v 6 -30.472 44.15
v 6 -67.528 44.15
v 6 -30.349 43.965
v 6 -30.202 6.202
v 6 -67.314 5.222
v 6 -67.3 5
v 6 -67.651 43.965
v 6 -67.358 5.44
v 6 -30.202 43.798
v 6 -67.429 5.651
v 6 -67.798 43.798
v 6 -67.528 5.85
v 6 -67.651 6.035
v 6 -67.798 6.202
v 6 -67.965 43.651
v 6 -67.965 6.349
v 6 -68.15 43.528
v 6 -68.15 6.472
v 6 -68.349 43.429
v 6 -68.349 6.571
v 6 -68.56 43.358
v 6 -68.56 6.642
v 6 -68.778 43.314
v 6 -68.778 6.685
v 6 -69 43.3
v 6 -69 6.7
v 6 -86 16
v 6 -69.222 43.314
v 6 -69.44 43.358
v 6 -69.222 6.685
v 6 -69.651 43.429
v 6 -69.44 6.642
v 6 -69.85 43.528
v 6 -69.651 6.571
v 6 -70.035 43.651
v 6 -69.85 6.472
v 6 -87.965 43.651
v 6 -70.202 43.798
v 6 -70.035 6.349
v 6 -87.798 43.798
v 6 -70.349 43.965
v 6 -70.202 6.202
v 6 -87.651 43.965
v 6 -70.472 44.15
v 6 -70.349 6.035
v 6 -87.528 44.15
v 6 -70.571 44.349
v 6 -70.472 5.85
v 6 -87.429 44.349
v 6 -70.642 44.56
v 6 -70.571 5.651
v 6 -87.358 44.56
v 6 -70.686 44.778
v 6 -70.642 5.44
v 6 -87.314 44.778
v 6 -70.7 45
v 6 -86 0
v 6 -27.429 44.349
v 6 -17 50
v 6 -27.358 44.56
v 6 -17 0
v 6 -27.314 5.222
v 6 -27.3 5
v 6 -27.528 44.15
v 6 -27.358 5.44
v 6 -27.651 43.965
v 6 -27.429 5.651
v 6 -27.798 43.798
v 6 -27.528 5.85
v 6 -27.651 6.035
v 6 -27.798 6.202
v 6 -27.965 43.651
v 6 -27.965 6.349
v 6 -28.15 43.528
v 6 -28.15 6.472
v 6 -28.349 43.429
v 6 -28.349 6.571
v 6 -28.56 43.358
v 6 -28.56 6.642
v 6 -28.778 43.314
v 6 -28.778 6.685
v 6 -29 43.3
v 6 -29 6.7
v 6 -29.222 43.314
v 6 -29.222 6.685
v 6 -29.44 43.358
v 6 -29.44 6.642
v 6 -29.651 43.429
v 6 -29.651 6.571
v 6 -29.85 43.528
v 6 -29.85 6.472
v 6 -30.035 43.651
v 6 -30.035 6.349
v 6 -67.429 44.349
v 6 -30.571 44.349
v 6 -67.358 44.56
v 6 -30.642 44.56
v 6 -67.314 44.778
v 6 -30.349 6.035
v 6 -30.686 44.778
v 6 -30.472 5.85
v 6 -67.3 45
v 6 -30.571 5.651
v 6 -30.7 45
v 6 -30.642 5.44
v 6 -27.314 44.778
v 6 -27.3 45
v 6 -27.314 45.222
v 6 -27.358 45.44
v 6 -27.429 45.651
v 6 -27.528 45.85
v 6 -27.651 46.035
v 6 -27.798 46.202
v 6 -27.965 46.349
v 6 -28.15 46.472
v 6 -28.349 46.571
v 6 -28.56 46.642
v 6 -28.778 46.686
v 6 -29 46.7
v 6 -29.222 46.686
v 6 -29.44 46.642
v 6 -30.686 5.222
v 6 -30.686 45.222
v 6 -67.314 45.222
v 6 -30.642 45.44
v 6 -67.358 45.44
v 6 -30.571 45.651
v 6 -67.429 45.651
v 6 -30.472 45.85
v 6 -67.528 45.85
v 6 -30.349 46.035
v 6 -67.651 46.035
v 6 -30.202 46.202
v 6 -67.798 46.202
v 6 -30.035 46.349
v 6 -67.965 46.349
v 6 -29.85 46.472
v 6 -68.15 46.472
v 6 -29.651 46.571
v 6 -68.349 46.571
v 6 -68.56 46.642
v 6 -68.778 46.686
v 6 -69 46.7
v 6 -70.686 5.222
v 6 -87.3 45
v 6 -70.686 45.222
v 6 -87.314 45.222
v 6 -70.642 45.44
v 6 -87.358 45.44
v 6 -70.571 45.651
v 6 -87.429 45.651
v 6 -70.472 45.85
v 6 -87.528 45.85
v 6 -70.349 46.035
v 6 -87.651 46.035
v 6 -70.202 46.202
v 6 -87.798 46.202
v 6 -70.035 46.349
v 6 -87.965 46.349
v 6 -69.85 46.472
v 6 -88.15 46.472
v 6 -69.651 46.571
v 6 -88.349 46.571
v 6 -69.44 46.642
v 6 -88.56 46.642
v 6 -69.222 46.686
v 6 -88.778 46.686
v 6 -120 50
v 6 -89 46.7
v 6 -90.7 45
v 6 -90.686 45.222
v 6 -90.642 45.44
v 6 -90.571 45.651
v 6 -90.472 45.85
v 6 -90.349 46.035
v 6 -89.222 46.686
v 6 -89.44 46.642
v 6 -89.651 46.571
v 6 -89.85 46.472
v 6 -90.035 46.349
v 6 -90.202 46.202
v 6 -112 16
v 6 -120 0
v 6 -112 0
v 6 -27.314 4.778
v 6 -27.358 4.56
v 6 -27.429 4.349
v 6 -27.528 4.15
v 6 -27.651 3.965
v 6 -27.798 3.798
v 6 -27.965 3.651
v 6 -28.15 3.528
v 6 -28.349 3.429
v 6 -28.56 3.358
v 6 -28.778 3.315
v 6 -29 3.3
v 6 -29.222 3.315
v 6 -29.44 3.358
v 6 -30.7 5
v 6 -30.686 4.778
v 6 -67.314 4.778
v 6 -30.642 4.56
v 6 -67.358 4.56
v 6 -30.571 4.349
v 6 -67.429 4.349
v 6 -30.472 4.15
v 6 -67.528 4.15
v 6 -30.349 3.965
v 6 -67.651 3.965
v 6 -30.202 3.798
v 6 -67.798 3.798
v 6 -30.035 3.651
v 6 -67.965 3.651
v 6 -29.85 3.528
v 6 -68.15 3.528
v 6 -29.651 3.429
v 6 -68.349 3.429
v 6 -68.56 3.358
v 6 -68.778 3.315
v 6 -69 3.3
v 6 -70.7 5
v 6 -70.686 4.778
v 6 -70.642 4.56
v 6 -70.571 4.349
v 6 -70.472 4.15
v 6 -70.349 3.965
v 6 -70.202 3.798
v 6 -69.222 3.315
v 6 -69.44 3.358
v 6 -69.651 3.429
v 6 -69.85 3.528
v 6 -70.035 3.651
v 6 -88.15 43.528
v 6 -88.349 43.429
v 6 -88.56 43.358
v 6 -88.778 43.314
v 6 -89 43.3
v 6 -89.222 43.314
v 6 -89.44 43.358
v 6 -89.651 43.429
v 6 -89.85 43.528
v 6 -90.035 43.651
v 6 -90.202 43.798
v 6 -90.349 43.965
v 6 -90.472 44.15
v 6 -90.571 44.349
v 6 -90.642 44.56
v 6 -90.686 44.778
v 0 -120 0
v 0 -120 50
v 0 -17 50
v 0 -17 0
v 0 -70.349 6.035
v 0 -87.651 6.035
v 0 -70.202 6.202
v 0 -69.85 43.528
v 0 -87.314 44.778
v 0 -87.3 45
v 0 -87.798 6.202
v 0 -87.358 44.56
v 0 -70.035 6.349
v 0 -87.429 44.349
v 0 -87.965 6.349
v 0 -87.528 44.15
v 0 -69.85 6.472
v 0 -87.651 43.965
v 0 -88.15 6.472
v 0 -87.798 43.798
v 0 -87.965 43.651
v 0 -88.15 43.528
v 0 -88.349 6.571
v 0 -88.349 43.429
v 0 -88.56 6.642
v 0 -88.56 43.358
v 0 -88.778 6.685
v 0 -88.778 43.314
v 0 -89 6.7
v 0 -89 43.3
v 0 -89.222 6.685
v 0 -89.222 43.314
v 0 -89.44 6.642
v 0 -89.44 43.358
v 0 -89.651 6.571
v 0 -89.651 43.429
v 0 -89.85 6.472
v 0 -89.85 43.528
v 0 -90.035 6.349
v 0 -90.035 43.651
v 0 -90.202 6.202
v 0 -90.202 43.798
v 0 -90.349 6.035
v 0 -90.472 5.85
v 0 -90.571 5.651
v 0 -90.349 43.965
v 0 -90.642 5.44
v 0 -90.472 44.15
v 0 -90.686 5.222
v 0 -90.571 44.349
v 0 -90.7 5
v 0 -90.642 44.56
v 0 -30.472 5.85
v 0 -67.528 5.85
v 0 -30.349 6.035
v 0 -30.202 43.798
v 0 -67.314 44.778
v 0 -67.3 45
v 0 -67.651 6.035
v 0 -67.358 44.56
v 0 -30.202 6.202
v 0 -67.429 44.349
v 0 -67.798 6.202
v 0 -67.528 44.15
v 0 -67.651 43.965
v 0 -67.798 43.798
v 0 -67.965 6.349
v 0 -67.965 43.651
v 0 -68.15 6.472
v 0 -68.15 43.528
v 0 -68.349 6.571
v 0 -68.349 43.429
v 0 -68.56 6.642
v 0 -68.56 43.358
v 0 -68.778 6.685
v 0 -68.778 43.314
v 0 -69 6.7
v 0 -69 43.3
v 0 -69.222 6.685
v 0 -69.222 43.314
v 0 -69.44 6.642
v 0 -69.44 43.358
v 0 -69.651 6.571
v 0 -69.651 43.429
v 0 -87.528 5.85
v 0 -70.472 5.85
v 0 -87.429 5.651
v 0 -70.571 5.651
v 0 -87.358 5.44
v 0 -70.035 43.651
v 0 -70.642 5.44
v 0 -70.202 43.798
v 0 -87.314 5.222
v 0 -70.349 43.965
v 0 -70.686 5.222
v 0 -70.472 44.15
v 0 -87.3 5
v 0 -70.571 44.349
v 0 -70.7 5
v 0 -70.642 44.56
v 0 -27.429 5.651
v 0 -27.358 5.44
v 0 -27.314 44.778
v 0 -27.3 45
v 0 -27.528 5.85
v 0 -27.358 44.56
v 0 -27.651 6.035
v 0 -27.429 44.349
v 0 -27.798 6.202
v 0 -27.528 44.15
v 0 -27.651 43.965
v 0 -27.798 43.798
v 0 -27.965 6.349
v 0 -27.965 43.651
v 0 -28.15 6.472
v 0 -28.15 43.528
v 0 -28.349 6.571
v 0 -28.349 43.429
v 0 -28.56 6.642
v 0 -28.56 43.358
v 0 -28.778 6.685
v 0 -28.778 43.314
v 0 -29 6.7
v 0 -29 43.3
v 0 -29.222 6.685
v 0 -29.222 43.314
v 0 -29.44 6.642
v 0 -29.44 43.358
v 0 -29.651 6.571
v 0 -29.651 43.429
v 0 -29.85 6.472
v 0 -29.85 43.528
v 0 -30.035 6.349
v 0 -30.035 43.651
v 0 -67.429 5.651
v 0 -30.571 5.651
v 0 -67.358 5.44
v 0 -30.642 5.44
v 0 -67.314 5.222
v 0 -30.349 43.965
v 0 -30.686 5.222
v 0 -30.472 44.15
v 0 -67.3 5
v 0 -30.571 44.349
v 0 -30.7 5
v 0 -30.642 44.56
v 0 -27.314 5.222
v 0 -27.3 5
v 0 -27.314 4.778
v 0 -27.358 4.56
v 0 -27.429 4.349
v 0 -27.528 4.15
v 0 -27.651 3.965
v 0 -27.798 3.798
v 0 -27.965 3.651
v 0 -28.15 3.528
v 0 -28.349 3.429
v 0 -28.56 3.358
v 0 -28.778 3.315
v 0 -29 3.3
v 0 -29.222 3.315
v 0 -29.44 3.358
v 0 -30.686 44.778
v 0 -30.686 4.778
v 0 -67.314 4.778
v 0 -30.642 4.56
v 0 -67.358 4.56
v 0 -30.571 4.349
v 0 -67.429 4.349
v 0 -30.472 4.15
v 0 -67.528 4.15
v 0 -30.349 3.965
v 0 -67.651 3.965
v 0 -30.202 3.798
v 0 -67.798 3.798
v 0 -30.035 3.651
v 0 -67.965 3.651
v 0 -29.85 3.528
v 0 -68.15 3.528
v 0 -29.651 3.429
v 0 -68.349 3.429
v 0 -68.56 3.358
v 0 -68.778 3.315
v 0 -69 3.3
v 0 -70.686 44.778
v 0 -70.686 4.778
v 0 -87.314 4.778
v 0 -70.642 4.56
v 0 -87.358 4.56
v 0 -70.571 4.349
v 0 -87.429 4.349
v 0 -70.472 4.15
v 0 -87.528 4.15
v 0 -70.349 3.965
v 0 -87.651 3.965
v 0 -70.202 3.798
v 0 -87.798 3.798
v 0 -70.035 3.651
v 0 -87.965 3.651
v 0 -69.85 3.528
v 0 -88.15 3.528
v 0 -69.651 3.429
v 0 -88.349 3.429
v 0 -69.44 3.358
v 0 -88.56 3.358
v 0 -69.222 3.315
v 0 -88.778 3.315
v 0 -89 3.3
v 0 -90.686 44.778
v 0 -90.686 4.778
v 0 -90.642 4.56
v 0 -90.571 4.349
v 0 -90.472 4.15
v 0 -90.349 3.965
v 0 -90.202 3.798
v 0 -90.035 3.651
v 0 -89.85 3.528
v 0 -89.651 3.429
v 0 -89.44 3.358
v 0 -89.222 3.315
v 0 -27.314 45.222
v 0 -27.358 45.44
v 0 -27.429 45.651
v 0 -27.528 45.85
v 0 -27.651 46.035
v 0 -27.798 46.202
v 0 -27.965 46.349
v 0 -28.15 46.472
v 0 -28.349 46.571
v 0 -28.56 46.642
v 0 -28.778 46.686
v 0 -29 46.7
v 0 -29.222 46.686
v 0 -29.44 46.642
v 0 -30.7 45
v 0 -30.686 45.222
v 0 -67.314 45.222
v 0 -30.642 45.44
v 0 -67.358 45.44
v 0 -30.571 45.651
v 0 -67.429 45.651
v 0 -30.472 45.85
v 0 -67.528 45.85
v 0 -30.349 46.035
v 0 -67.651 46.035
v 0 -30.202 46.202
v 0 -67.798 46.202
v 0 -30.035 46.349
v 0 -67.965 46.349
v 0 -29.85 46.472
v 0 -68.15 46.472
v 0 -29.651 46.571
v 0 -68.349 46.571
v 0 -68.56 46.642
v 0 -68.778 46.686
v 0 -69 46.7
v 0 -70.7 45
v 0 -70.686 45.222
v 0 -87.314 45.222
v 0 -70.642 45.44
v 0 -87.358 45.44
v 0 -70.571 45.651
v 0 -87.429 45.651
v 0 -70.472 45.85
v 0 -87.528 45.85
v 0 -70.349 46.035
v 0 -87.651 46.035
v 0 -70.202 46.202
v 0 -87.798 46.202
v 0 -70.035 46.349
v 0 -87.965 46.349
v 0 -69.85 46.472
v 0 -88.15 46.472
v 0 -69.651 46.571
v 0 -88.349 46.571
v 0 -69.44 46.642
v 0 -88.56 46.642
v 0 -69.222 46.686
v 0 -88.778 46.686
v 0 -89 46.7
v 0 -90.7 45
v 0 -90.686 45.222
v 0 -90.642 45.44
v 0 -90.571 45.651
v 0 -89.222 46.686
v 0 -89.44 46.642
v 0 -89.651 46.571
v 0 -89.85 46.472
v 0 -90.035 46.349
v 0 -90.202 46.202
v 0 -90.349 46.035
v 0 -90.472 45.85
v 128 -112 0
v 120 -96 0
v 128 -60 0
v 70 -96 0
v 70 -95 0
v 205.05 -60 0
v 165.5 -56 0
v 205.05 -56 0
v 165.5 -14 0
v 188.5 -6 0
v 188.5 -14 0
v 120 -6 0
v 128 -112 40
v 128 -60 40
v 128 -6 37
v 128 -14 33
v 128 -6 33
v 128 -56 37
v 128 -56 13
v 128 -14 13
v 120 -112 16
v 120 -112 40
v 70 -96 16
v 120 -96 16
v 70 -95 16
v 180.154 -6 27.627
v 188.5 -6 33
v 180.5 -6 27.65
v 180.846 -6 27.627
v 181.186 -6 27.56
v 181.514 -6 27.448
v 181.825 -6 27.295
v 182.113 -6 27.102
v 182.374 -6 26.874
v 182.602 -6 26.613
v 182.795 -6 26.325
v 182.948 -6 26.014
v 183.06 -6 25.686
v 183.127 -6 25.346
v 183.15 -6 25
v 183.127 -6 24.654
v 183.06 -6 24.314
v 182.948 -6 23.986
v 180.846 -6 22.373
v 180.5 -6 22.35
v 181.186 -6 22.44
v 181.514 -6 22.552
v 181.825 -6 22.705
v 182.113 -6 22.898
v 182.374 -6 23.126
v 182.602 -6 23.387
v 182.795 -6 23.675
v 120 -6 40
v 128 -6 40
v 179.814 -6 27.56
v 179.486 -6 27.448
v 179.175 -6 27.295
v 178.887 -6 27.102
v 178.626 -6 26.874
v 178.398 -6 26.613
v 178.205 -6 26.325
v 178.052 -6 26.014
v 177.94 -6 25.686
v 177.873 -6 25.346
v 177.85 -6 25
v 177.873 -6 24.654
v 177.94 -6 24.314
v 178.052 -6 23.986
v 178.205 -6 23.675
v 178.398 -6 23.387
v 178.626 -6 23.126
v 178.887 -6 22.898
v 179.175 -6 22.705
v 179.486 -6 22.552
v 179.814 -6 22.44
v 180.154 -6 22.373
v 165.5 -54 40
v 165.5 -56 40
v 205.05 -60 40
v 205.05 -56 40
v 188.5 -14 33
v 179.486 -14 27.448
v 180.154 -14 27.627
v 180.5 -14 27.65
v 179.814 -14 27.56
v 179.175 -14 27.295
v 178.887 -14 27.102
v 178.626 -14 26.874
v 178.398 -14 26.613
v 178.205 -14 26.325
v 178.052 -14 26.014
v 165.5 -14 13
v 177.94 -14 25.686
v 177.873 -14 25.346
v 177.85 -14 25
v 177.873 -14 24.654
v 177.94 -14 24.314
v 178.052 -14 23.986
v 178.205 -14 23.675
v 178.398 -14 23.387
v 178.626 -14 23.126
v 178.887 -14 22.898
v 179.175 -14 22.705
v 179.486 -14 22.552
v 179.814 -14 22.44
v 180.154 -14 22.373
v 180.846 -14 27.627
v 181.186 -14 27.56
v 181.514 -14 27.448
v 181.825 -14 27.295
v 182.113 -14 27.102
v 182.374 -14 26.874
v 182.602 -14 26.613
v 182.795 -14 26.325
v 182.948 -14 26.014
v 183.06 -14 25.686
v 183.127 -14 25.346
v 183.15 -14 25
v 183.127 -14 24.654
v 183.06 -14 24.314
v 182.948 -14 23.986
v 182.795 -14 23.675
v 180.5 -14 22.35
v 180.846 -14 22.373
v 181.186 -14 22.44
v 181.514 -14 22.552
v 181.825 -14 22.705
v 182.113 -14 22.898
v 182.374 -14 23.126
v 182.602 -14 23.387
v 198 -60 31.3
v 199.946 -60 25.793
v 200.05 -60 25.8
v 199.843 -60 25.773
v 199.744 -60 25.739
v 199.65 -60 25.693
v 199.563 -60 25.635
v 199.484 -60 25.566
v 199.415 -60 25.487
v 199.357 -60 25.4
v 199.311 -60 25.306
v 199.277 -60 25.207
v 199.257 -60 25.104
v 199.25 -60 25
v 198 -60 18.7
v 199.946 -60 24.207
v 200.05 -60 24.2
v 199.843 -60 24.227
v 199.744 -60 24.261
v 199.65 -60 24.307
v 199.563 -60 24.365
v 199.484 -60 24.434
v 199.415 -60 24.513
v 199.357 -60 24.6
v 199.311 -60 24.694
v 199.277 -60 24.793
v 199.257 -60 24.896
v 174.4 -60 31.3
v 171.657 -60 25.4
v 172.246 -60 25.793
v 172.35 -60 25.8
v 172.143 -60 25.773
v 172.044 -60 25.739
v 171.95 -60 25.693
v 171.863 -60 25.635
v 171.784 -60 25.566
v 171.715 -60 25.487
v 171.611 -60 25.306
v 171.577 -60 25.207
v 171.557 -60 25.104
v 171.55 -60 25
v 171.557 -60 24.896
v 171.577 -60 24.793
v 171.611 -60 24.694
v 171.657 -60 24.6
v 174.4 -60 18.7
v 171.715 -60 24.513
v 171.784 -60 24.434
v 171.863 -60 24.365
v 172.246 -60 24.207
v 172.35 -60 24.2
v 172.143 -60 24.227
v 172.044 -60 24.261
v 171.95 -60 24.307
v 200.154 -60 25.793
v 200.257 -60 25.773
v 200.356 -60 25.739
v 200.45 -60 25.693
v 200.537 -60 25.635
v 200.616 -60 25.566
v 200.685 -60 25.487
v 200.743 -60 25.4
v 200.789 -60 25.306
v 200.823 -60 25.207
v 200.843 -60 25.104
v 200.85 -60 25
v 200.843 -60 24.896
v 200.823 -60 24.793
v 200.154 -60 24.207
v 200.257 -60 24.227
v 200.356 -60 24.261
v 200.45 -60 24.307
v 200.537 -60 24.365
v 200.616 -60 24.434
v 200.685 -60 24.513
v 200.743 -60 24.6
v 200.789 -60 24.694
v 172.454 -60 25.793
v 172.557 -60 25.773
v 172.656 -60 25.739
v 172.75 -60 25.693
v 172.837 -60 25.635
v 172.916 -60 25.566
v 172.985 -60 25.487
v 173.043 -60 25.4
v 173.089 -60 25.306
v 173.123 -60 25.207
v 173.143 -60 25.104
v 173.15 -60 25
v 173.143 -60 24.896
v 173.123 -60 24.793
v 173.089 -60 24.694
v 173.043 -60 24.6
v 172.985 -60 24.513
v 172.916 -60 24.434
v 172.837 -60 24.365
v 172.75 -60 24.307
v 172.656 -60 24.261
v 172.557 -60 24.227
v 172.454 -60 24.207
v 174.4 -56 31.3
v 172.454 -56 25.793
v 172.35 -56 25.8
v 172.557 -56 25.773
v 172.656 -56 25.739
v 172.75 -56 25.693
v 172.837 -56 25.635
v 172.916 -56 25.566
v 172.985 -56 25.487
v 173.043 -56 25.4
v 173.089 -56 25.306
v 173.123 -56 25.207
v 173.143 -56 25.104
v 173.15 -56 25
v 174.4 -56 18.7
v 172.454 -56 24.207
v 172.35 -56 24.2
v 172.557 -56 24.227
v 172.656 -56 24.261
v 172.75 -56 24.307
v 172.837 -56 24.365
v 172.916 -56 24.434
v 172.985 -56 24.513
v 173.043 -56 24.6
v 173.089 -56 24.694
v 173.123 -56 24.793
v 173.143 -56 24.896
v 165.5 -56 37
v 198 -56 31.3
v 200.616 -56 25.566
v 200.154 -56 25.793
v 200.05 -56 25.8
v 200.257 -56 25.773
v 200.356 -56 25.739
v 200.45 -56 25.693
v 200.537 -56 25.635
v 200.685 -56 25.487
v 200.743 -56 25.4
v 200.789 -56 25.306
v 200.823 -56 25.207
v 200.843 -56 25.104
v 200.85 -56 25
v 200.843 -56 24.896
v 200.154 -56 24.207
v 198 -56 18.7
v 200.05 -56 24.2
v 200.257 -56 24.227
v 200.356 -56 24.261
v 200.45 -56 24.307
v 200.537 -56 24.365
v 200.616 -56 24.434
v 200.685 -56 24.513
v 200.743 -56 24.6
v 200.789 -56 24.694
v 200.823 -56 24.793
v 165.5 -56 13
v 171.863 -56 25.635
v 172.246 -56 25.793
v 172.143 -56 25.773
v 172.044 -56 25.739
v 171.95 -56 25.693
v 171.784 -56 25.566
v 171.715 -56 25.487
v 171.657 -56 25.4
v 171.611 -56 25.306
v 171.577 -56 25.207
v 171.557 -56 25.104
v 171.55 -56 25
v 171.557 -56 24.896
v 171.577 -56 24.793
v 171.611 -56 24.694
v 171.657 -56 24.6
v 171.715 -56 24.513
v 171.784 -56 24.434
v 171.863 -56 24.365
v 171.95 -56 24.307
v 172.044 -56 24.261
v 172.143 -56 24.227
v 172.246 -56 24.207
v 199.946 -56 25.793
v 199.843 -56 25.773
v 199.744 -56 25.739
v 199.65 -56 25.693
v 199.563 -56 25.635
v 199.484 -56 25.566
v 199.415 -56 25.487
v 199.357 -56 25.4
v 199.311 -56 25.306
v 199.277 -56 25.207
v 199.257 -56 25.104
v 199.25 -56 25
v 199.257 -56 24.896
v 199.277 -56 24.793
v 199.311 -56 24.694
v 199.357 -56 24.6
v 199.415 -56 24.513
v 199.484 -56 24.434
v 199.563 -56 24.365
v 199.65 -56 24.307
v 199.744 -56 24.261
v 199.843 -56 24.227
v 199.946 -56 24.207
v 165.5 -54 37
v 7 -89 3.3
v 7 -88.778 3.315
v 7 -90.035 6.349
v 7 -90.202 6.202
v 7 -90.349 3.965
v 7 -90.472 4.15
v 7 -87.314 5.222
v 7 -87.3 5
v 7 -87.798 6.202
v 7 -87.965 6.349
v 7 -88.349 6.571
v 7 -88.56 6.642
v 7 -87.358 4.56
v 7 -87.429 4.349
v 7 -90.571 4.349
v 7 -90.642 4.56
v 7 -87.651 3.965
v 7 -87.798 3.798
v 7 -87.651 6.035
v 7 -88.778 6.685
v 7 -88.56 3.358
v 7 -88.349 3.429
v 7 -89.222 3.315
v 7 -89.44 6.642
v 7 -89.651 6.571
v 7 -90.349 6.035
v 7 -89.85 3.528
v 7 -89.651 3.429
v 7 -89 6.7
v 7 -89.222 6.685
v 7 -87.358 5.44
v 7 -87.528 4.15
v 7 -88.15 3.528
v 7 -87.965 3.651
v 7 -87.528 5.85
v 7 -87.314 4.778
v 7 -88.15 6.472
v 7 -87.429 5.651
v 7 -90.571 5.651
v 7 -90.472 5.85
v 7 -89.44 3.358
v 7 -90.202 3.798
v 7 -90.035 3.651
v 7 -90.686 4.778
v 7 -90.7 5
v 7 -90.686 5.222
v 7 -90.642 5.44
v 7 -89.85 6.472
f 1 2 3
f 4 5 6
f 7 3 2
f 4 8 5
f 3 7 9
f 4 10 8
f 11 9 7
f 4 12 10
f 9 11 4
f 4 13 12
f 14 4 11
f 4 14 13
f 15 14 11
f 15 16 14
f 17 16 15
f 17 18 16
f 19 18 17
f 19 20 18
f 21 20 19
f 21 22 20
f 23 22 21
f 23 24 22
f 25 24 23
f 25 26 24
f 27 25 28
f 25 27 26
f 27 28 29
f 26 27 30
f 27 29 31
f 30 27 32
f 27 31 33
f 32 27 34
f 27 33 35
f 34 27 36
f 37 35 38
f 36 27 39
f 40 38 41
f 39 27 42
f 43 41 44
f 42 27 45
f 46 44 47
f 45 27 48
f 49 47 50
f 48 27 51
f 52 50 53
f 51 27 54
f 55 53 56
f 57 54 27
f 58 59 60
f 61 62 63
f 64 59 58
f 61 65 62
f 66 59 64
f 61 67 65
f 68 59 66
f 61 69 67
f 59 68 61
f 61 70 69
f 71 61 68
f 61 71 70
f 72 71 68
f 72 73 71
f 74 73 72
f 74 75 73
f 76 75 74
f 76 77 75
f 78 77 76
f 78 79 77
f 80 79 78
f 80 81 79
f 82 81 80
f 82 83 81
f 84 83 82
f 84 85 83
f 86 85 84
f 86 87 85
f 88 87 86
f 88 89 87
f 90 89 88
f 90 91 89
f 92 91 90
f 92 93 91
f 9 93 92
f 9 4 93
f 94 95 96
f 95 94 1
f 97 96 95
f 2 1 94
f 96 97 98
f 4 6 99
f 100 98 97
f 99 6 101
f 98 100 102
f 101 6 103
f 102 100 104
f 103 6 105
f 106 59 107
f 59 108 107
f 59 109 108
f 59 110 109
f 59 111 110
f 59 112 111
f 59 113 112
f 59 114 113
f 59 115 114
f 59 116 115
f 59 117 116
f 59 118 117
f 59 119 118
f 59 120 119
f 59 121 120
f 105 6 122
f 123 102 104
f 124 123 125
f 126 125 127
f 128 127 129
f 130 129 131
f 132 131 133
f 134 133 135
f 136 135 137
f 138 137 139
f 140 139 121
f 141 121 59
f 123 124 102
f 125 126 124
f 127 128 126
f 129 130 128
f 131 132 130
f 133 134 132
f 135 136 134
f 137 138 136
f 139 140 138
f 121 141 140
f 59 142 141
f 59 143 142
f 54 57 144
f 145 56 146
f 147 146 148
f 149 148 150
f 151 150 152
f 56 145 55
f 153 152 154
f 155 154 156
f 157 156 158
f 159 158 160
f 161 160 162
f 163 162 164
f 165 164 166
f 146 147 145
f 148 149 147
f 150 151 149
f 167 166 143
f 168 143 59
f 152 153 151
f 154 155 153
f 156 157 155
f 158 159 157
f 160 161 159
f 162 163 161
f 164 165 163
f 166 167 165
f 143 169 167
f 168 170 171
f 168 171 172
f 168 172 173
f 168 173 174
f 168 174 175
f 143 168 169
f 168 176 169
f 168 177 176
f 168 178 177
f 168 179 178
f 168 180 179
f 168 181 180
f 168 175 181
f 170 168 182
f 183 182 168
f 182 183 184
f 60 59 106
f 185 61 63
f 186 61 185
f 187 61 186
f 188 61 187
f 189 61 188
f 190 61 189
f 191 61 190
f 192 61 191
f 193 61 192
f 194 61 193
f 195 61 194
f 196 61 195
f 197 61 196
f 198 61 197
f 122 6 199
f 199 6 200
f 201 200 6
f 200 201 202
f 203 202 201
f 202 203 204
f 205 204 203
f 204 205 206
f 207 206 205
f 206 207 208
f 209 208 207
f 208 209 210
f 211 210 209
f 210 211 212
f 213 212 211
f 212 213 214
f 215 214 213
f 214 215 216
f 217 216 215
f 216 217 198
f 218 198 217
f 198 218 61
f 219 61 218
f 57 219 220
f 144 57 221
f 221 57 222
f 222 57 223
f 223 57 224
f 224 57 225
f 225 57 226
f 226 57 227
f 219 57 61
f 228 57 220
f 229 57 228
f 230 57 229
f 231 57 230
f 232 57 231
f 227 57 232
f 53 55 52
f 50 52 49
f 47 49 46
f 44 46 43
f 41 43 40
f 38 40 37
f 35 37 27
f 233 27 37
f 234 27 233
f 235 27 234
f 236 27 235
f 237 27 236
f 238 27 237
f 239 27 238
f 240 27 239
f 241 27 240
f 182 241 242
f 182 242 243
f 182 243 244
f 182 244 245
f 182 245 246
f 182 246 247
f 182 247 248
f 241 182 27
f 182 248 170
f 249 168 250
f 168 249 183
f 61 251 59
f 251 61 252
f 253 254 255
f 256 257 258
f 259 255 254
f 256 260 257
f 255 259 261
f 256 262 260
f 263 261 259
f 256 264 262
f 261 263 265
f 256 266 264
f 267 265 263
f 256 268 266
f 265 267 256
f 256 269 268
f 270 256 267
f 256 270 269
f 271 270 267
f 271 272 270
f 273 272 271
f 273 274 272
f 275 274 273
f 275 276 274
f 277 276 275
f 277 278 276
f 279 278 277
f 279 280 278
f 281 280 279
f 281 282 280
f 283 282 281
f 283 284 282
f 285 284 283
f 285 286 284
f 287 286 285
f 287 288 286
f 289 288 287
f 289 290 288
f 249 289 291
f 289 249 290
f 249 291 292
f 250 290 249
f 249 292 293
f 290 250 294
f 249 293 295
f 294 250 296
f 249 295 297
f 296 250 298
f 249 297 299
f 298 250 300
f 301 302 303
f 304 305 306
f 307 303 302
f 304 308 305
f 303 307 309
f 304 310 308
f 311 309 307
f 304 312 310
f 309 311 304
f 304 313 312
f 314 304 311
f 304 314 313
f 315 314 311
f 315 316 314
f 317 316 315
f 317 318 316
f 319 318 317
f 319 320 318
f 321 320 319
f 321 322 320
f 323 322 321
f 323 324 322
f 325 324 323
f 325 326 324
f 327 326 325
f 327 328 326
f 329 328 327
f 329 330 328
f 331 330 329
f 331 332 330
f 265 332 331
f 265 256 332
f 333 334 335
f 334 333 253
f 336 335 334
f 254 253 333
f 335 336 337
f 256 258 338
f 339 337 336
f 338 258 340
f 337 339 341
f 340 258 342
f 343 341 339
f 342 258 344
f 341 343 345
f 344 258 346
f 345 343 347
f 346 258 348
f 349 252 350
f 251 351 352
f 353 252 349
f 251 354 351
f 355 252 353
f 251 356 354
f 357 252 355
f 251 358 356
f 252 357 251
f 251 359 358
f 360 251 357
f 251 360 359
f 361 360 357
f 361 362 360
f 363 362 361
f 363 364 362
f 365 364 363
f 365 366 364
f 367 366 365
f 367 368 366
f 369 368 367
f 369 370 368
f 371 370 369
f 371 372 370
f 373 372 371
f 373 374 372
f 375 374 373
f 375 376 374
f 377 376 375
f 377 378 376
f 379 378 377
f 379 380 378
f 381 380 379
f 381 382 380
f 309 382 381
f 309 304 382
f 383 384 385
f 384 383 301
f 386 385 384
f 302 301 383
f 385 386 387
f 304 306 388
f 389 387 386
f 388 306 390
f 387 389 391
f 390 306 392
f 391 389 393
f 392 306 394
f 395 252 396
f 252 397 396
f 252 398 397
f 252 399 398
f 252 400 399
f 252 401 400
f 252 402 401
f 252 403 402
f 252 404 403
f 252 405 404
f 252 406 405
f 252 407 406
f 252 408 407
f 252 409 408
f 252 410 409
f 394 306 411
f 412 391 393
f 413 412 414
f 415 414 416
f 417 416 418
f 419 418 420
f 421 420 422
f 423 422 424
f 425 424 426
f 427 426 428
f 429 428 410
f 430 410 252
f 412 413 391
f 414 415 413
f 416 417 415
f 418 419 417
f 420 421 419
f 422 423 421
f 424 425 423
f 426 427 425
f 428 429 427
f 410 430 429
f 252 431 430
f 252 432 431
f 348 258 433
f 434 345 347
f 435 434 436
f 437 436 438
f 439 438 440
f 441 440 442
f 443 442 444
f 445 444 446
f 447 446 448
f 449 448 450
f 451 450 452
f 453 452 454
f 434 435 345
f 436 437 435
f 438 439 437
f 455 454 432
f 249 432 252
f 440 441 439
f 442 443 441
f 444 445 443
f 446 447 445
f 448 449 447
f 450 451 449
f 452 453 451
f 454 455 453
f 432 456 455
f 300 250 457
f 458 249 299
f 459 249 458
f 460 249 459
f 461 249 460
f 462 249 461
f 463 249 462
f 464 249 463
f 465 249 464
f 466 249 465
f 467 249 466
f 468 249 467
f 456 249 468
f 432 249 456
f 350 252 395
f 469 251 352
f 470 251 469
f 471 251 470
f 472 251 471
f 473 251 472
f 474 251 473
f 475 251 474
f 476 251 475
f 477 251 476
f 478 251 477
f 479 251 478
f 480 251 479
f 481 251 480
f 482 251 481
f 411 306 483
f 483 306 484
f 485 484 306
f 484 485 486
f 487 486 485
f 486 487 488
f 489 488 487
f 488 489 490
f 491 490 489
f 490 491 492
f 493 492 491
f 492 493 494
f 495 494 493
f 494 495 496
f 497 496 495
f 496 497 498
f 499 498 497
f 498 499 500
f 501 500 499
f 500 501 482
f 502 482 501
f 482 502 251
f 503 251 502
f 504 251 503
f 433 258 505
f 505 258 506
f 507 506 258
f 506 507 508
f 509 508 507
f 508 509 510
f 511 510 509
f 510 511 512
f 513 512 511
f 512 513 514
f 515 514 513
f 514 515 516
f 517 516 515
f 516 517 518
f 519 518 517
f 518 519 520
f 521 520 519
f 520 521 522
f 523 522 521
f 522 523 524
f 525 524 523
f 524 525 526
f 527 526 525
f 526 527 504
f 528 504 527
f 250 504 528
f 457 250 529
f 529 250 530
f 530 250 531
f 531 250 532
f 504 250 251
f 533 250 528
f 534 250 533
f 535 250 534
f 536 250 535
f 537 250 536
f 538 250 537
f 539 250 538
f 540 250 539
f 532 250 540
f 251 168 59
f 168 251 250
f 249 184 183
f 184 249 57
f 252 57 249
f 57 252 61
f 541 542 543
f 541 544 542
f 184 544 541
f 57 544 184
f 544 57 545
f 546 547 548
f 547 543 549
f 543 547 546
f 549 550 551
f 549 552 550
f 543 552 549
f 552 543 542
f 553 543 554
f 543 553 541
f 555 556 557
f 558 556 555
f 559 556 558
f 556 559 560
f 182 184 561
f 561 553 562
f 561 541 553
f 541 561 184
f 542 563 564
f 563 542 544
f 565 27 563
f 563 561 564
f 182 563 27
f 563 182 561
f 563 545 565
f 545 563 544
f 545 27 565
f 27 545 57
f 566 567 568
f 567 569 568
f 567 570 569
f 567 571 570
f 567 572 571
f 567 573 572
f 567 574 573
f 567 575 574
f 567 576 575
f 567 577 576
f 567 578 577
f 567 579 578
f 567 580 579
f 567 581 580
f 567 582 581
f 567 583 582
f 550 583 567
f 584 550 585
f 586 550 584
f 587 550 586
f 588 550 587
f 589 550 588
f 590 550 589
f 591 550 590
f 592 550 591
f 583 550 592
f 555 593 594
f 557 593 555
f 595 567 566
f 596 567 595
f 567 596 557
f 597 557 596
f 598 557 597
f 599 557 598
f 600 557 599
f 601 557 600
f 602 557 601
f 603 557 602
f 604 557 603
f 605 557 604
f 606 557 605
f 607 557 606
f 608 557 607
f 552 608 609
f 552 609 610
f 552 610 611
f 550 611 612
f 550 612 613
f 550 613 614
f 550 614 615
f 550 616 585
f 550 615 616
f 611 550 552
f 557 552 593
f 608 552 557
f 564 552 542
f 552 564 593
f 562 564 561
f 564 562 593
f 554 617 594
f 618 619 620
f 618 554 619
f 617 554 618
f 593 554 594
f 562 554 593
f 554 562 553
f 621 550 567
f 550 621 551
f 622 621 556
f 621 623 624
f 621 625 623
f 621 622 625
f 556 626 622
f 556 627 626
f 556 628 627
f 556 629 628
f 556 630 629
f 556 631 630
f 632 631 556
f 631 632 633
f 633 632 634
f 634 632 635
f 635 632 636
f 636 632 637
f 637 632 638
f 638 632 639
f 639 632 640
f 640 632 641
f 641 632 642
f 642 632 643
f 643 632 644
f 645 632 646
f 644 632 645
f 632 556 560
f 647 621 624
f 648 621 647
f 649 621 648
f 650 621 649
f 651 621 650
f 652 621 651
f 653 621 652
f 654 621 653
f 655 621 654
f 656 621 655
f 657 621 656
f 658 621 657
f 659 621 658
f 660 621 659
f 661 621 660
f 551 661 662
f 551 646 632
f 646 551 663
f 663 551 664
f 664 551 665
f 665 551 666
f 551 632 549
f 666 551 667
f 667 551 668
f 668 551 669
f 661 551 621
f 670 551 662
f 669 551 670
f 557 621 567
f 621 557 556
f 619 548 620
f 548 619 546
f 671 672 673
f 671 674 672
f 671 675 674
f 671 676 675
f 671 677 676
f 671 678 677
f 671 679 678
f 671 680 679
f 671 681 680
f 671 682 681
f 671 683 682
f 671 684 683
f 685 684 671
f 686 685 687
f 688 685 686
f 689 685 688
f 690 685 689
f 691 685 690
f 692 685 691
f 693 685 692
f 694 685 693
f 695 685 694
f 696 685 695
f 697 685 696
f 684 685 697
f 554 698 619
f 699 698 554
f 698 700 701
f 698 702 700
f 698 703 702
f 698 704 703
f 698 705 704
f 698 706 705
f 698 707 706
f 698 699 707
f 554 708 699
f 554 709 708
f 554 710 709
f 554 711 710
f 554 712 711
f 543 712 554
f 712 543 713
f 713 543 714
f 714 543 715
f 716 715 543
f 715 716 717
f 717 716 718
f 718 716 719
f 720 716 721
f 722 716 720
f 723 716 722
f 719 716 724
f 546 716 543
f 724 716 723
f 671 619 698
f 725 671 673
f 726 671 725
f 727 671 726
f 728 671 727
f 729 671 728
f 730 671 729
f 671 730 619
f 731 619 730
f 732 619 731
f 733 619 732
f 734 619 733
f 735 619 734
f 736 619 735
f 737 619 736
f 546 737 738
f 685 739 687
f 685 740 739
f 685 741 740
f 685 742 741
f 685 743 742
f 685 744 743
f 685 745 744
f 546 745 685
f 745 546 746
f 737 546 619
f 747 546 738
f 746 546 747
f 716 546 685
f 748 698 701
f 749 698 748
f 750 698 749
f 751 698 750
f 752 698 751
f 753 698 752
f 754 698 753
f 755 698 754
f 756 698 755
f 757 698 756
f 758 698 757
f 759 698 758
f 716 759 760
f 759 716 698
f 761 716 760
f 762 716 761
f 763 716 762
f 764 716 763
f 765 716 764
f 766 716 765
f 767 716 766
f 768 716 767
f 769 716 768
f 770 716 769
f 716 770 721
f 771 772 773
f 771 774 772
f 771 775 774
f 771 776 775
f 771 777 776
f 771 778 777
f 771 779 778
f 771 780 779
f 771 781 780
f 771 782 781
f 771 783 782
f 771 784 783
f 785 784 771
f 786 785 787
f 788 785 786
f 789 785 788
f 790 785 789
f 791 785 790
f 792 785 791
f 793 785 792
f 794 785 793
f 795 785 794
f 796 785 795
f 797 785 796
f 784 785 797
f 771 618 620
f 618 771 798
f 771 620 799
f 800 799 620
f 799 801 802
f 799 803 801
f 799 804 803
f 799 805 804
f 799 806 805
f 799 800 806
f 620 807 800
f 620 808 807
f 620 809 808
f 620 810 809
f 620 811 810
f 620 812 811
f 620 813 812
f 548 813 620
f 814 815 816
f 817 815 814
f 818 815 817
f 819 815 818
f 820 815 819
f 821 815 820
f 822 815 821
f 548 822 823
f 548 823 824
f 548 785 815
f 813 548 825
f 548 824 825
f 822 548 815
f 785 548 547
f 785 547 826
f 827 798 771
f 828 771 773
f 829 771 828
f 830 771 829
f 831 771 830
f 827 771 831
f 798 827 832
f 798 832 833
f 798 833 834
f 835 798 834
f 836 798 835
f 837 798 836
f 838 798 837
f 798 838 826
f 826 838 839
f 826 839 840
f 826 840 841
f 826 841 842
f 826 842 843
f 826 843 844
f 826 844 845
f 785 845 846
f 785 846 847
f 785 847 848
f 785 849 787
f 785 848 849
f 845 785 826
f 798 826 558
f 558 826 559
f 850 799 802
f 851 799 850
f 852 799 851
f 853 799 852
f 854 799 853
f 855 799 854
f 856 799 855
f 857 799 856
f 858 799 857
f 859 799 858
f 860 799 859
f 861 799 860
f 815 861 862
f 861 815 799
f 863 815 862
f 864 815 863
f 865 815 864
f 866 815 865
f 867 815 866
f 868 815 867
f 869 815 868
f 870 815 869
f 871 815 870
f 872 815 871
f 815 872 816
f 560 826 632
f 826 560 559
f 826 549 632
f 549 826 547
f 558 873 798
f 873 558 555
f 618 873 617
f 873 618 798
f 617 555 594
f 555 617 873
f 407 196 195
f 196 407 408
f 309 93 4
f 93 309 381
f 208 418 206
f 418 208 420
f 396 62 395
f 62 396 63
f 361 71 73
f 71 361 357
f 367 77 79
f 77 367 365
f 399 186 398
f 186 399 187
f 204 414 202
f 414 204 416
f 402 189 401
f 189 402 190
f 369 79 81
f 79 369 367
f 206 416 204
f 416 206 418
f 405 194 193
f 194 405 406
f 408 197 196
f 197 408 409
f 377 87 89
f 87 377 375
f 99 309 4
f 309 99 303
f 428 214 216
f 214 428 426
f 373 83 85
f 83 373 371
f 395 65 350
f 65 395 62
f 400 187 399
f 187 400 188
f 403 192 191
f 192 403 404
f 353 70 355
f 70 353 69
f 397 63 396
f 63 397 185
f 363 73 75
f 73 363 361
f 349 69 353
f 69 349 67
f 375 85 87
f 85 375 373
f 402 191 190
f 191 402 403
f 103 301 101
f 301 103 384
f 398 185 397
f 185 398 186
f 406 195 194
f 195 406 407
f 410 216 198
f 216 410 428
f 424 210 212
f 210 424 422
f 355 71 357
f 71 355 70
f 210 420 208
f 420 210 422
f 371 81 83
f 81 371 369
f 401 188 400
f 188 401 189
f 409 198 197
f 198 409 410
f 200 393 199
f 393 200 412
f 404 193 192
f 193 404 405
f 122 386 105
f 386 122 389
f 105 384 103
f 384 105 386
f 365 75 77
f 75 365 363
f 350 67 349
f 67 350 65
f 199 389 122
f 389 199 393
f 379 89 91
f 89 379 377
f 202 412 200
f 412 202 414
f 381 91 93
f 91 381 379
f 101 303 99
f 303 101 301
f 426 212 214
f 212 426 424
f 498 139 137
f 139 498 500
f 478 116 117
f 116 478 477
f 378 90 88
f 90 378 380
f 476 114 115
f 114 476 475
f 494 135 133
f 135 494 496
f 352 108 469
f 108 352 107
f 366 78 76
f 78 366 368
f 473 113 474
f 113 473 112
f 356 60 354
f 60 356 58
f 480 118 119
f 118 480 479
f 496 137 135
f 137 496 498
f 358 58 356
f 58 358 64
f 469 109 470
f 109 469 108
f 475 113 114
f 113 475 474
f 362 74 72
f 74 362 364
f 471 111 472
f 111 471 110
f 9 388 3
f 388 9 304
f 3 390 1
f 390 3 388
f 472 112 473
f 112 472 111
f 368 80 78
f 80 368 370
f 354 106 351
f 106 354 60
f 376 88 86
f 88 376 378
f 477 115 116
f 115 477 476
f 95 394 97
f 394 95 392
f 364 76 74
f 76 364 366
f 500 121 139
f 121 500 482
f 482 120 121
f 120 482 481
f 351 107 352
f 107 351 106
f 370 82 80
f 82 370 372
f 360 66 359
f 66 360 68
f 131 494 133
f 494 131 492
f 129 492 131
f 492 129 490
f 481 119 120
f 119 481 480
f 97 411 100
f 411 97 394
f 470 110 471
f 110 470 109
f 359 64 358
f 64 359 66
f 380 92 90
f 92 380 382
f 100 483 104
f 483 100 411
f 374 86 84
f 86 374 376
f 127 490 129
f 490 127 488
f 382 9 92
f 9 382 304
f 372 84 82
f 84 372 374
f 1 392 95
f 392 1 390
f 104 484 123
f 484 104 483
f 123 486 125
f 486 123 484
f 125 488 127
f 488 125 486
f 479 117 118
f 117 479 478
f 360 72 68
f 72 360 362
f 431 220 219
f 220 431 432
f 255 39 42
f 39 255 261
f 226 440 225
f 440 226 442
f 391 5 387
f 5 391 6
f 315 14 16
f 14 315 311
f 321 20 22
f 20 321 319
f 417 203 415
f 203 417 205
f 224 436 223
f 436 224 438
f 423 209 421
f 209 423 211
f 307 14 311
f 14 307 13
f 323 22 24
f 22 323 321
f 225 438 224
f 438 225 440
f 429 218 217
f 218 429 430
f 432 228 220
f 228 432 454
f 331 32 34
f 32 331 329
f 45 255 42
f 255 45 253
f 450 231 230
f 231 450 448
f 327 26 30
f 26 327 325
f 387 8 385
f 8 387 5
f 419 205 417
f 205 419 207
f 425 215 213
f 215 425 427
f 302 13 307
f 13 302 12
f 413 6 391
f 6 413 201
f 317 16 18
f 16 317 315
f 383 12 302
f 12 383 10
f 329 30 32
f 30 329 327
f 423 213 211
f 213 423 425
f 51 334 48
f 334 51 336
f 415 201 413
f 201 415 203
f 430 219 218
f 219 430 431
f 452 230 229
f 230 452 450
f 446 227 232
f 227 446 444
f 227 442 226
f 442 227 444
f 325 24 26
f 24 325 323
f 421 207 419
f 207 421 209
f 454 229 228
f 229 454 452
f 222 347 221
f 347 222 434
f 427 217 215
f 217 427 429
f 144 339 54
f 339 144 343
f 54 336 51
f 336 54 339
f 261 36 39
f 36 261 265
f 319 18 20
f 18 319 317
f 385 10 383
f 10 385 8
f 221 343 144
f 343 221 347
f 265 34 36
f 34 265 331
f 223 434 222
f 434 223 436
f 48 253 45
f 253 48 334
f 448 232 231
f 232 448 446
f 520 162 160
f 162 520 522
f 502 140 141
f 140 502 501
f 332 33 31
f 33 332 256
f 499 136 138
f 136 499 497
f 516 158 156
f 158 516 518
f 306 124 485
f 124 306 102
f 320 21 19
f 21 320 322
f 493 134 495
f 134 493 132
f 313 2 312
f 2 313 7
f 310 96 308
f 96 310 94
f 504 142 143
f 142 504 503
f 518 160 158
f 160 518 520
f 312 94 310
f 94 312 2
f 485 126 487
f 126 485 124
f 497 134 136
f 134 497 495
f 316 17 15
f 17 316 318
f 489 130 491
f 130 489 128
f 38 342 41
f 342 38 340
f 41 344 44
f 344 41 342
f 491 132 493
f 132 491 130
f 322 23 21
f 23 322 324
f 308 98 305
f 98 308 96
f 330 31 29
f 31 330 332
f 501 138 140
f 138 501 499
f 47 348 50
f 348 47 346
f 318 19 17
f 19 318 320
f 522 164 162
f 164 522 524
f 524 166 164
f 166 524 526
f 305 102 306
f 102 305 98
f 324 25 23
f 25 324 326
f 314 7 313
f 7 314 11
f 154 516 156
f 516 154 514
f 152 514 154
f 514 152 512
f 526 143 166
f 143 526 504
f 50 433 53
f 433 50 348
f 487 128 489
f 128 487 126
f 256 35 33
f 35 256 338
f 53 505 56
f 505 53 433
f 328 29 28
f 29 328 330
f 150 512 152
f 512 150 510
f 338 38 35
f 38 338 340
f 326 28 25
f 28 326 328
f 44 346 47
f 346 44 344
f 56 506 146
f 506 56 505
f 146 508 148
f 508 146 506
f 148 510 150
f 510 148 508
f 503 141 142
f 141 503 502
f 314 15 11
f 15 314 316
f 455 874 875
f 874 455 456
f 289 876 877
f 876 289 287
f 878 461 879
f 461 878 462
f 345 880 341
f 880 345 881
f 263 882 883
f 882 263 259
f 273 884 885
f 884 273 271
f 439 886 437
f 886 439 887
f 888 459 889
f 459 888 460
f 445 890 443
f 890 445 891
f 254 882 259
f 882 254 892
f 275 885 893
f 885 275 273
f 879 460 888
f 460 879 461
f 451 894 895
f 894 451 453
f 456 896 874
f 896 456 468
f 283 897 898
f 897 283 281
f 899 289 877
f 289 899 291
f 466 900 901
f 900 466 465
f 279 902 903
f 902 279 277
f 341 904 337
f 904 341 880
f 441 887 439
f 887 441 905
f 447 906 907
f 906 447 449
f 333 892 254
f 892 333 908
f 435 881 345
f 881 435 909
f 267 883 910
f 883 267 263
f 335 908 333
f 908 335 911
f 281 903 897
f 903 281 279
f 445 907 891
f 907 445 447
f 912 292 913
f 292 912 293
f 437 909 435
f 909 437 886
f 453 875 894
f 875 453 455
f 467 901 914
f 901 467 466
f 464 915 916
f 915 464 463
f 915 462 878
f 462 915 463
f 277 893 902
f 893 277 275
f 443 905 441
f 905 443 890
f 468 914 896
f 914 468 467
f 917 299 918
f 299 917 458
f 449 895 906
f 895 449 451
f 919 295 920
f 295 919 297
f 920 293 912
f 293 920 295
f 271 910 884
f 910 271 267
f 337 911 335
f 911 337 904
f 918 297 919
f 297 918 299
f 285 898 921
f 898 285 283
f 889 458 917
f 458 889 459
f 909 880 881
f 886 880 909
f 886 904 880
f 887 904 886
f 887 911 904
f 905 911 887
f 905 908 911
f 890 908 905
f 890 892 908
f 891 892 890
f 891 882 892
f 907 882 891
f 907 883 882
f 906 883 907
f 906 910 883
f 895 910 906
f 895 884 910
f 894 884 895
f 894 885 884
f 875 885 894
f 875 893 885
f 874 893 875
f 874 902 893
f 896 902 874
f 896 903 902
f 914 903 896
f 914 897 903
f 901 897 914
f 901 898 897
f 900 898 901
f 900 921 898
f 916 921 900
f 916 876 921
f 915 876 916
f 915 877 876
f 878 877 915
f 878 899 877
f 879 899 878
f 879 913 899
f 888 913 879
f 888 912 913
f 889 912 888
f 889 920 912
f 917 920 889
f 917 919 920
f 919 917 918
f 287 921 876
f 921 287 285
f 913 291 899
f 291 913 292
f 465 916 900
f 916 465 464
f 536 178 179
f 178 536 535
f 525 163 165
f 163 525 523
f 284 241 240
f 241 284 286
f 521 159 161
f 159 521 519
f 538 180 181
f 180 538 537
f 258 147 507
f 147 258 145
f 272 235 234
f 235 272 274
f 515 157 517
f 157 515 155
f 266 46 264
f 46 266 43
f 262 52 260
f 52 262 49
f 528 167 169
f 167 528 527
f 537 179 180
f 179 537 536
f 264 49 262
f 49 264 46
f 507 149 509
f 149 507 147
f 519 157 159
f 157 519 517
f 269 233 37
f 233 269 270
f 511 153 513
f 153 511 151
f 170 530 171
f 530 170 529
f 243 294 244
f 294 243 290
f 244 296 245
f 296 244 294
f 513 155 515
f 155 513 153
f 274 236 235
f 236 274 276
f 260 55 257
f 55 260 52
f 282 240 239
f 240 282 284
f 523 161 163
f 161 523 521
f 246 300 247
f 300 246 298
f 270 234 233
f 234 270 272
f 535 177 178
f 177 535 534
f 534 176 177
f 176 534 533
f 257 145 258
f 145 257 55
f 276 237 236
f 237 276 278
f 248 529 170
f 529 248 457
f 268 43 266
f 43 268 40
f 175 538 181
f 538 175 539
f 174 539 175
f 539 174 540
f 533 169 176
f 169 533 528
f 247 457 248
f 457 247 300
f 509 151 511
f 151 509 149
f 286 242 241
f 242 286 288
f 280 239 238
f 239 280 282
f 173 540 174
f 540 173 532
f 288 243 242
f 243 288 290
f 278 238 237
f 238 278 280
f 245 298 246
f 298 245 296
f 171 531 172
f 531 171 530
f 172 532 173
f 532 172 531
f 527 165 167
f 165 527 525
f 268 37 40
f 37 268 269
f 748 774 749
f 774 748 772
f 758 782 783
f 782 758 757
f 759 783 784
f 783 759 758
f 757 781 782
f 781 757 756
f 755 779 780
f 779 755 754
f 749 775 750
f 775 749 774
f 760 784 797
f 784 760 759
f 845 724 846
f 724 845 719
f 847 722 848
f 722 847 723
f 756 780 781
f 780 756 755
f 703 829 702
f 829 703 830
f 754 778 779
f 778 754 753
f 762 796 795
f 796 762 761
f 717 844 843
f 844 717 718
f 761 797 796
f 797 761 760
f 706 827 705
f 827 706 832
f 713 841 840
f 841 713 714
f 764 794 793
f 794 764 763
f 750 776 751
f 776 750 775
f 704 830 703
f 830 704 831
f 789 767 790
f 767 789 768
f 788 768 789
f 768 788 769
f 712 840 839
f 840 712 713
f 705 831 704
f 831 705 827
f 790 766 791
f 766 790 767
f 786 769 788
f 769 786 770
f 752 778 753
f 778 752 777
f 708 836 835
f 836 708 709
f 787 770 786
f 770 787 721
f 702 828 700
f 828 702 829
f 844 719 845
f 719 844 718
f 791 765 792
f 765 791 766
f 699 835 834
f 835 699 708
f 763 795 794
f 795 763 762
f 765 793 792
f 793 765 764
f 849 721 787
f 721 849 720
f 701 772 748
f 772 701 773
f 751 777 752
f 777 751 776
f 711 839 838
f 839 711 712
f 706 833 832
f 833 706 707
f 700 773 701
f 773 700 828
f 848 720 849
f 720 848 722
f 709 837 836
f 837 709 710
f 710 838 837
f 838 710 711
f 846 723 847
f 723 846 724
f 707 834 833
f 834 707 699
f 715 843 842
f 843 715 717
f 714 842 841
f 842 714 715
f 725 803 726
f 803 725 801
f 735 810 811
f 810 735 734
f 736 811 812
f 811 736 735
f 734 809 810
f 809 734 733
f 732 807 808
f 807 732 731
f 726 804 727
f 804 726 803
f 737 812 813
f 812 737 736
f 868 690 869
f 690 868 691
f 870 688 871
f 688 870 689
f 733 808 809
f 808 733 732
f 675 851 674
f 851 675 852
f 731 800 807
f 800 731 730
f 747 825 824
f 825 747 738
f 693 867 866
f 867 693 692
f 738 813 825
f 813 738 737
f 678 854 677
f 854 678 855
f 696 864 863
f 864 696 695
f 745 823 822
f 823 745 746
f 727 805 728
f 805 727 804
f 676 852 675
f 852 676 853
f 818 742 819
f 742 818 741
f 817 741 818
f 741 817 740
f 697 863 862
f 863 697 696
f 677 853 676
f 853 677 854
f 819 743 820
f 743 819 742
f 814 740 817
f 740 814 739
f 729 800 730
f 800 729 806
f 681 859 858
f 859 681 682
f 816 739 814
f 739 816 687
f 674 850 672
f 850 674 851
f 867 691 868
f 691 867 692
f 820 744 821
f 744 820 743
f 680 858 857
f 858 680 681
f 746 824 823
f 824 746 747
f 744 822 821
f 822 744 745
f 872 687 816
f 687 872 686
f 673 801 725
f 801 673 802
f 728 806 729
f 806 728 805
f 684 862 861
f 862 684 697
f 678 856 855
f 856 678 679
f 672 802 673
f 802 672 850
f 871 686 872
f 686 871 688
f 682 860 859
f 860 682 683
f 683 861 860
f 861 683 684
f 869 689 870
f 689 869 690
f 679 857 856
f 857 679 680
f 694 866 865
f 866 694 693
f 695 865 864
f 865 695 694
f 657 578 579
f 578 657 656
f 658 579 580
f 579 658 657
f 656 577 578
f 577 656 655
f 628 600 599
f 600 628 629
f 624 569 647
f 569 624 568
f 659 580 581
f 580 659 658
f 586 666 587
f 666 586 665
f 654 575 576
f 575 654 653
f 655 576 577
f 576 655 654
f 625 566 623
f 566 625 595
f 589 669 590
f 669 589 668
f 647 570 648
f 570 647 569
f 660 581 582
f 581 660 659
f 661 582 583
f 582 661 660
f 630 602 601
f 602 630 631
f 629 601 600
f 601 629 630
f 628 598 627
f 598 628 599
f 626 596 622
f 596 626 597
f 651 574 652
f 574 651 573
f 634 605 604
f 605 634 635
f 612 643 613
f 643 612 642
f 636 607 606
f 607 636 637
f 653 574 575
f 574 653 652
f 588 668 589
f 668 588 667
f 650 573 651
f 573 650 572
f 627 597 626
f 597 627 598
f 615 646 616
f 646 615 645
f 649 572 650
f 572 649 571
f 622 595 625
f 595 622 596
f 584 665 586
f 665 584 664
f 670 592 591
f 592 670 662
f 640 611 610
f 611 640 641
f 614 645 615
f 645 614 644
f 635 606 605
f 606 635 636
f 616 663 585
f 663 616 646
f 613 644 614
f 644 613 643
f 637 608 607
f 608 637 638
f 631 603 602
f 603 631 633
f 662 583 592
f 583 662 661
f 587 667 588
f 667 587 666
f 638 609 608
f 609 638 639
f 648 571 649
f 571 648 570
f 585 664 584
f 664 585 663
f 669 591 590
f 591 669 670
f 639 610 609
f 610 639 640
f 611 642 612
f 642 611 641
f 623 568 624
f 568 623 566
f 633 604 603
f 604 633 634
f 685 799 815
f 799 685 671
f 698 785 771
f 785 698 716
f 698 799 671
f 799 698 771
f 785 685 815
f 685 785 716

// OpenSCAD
// AR-Mini · rudder_frame (29.10.2026 evening): one-piece rudder support bolted to the beam_leg, NO collar on the duct.
// Replaces rudder_mount (the collar could not go on the duct, IMG_2680). Reuses rudder_blade, rudder_hub and the Ø5 stock.
// Global coords as beam_leg.scad: x from the bow (aft +), z from the hull bottom, y across. Print lying on the -y side, supports none.
// The 6 mm plate sits BETWEEN the beam_leg pad and the thruster_bracket (rows 29/69 go through both, M3 x 20),
// plus 2 x M3 x 12 into the free row 89. Everything aft of the pad (thruster, rudder) moves 6 mm aft.
$fn = 48;
pad_x   = 513.7;          // beam_leg aft pad face
t       = 6;              // frame plate thickness
W       = 50;             // = beam_leg / thruster_bracket width
exit_x  = pad_x + t + 19 + 47 + 112/2;   // duct exit face: pin 19 aft of the bracket face, duct centre 47 aft of the pin, duct 112 long
stock_x = exit_x + 52.5;  // same as rudder.scad: blade LE 40 aft of the rim (tail cone 34.7)
// heights (global) unchanged from rudder.scad, so blade, hub and the 110 mm stock still fit
brg_z   = [6, 14];        // bearing arm (hole Ø5.3)
P       = 60;             // MG90S ear plane = seat top
sv      = [23.6, 12.6]; sv_shaft = 6.1; ear_dx = 2.05; ear_d = 1.6;
half_w  = 15;
boom_z  = [96, 112];
boom_y  = -9;             // boom + gusset run on the -y side (y -25..-9): the thruster cable stays free on +y
post_x  = [exit_x - 8, exit_x];
plate_z = [17, 120];
rows    = [29, 69, 89];   // 29/69 = thruster_bracket bolts pass through, 89 = frame only
y0      = -W/2;           // print bed face; every member starts here so nothing overhangs

module frame() difference() {
    union() {
        translate([pad_x, -W/2, plate_z[0]]) cube([t, W, plate_z[1] - plate_z[0]]);                       // plate on the pad
        translate([pad_x, y0, boom_z[0]]) cube([post_x[1] - pad_x, boom_y - y0, boom_z[1] - boom_z[0]]);        // boom over the thruster
        hull() {                                                                                          // gusset plate -> boom (clears the lugs, top z 59)
            translate([pad_x + t - 1, y0, 86]) cube([1, boom_y - y0, 10]);
            translate([pad_x + 60, y0, boom_z[0] - 1]) cube([10, boom_y - y0, 1]);
        }
        translate([post_x[0], y0, brg_z[0]]) cube([8, half_w - y0, boom_z[1] - brg_z[0]]);               // post down to the bearing
        translate([post_x[0], y0, brg_z[0]]) cube([stock_x + 8 - post_x[0], 8 - y0, brg_z[1] - brg_z[0]]); // bearing arm
        translate([post_x[0], y0, P - 4]) cube([stock_x - sv_shaft + sv[0] + ear_dx + 5 - post_x[0], half_w - y0, 4]);   // servo seat
        hull() {                                                                                          // -y web bearing arm -> seat, forward of the hub
            translate([post_x[0], y0, brg_z[0]]) cube([8, -12 - y0, P - brg_z[0]]);
            translate([stock_x - 16, y0, brg_z[1] - 1]) cube([1, -12 - y0, 1]);
            translate([stock_x - 16, y0, P - 4]) cube([1, -12 - y0, 4]);
        }
        hull() {                                                                                          // +y wall post -> seat
            translate([post_x[0], 12, brg_z[0]]) cube([8, 3, P - brg_z[0]]);
            translate([stock_x - 16, 12, P - 6]) cube([1, 3, 6]);
        }
    }
    for (z = rows, y = [-20, 20]) translate([pad_x - 1, y, z]) rotate([0, 90, 0]) cylinder(d = 3.4, h = t + 2);
    translate([stock_x, 0, brg_z[0] - 1]) cylinder(d = 5.3, h = brg_z[1] - brg_z[0] + 2);                 // bearing
    translate([stock_x - sv_shaft, -sv[1]/2, P - 5]) cube([sv[0], sv[1], 6]);                              // servo body drops in from the top, shaft down
    for (x = [stock_x - sv_shaft - ear_dx, stock_x - sv_shaft + sv[0] + ear_dx]) translate([x, 0, P - 5]) cylinder(d = ear_d, h = 6);
}

part = "print";   // print | assembly
if (part == "print") rotate([90, 0, 0]) translate([-pad_x, -y0, 0]) frame();   // -y face on the bed
else {
    color("steelblue") frame();
    %translate([exit_x - 112, 0, -34]) rotate([0, 90, 0]) cylinder(d = 72.27, h = 112);                    // duct
    %translate([exit_x, 0, -34]) rotate([0, 90, 0]) cylinder(d1 = 32.2, d2 = 2, h = 34.7);                  // tail cone
    %translate([stock_x - 12.5, -4, -72]) cube([50, 8, 75]);                                               // blade
    %translate([stock_x - sv_shaft, -sv[1]/2, P]) cube([sv[0], sv[1], 16.3]);                              // servo body
    color("silver") translate([stock_x, 0, -70]) cylinder(d = 5, h = 110);
    %translate([pad_x + t, -25, 17]) cube([6, 50, 64]);                                                    // thruster_bracket plate
}
echo(str("exit x ", exit_x, ", stock x ", stock_x, ", frame x ", pad_x, "..", stock_x - sv_shaft + sv[0] + ear_dx + 5, " (", stock_x - sv_shaft + sv[0] + ear_dx + 5 - pad_x, " long)"));
